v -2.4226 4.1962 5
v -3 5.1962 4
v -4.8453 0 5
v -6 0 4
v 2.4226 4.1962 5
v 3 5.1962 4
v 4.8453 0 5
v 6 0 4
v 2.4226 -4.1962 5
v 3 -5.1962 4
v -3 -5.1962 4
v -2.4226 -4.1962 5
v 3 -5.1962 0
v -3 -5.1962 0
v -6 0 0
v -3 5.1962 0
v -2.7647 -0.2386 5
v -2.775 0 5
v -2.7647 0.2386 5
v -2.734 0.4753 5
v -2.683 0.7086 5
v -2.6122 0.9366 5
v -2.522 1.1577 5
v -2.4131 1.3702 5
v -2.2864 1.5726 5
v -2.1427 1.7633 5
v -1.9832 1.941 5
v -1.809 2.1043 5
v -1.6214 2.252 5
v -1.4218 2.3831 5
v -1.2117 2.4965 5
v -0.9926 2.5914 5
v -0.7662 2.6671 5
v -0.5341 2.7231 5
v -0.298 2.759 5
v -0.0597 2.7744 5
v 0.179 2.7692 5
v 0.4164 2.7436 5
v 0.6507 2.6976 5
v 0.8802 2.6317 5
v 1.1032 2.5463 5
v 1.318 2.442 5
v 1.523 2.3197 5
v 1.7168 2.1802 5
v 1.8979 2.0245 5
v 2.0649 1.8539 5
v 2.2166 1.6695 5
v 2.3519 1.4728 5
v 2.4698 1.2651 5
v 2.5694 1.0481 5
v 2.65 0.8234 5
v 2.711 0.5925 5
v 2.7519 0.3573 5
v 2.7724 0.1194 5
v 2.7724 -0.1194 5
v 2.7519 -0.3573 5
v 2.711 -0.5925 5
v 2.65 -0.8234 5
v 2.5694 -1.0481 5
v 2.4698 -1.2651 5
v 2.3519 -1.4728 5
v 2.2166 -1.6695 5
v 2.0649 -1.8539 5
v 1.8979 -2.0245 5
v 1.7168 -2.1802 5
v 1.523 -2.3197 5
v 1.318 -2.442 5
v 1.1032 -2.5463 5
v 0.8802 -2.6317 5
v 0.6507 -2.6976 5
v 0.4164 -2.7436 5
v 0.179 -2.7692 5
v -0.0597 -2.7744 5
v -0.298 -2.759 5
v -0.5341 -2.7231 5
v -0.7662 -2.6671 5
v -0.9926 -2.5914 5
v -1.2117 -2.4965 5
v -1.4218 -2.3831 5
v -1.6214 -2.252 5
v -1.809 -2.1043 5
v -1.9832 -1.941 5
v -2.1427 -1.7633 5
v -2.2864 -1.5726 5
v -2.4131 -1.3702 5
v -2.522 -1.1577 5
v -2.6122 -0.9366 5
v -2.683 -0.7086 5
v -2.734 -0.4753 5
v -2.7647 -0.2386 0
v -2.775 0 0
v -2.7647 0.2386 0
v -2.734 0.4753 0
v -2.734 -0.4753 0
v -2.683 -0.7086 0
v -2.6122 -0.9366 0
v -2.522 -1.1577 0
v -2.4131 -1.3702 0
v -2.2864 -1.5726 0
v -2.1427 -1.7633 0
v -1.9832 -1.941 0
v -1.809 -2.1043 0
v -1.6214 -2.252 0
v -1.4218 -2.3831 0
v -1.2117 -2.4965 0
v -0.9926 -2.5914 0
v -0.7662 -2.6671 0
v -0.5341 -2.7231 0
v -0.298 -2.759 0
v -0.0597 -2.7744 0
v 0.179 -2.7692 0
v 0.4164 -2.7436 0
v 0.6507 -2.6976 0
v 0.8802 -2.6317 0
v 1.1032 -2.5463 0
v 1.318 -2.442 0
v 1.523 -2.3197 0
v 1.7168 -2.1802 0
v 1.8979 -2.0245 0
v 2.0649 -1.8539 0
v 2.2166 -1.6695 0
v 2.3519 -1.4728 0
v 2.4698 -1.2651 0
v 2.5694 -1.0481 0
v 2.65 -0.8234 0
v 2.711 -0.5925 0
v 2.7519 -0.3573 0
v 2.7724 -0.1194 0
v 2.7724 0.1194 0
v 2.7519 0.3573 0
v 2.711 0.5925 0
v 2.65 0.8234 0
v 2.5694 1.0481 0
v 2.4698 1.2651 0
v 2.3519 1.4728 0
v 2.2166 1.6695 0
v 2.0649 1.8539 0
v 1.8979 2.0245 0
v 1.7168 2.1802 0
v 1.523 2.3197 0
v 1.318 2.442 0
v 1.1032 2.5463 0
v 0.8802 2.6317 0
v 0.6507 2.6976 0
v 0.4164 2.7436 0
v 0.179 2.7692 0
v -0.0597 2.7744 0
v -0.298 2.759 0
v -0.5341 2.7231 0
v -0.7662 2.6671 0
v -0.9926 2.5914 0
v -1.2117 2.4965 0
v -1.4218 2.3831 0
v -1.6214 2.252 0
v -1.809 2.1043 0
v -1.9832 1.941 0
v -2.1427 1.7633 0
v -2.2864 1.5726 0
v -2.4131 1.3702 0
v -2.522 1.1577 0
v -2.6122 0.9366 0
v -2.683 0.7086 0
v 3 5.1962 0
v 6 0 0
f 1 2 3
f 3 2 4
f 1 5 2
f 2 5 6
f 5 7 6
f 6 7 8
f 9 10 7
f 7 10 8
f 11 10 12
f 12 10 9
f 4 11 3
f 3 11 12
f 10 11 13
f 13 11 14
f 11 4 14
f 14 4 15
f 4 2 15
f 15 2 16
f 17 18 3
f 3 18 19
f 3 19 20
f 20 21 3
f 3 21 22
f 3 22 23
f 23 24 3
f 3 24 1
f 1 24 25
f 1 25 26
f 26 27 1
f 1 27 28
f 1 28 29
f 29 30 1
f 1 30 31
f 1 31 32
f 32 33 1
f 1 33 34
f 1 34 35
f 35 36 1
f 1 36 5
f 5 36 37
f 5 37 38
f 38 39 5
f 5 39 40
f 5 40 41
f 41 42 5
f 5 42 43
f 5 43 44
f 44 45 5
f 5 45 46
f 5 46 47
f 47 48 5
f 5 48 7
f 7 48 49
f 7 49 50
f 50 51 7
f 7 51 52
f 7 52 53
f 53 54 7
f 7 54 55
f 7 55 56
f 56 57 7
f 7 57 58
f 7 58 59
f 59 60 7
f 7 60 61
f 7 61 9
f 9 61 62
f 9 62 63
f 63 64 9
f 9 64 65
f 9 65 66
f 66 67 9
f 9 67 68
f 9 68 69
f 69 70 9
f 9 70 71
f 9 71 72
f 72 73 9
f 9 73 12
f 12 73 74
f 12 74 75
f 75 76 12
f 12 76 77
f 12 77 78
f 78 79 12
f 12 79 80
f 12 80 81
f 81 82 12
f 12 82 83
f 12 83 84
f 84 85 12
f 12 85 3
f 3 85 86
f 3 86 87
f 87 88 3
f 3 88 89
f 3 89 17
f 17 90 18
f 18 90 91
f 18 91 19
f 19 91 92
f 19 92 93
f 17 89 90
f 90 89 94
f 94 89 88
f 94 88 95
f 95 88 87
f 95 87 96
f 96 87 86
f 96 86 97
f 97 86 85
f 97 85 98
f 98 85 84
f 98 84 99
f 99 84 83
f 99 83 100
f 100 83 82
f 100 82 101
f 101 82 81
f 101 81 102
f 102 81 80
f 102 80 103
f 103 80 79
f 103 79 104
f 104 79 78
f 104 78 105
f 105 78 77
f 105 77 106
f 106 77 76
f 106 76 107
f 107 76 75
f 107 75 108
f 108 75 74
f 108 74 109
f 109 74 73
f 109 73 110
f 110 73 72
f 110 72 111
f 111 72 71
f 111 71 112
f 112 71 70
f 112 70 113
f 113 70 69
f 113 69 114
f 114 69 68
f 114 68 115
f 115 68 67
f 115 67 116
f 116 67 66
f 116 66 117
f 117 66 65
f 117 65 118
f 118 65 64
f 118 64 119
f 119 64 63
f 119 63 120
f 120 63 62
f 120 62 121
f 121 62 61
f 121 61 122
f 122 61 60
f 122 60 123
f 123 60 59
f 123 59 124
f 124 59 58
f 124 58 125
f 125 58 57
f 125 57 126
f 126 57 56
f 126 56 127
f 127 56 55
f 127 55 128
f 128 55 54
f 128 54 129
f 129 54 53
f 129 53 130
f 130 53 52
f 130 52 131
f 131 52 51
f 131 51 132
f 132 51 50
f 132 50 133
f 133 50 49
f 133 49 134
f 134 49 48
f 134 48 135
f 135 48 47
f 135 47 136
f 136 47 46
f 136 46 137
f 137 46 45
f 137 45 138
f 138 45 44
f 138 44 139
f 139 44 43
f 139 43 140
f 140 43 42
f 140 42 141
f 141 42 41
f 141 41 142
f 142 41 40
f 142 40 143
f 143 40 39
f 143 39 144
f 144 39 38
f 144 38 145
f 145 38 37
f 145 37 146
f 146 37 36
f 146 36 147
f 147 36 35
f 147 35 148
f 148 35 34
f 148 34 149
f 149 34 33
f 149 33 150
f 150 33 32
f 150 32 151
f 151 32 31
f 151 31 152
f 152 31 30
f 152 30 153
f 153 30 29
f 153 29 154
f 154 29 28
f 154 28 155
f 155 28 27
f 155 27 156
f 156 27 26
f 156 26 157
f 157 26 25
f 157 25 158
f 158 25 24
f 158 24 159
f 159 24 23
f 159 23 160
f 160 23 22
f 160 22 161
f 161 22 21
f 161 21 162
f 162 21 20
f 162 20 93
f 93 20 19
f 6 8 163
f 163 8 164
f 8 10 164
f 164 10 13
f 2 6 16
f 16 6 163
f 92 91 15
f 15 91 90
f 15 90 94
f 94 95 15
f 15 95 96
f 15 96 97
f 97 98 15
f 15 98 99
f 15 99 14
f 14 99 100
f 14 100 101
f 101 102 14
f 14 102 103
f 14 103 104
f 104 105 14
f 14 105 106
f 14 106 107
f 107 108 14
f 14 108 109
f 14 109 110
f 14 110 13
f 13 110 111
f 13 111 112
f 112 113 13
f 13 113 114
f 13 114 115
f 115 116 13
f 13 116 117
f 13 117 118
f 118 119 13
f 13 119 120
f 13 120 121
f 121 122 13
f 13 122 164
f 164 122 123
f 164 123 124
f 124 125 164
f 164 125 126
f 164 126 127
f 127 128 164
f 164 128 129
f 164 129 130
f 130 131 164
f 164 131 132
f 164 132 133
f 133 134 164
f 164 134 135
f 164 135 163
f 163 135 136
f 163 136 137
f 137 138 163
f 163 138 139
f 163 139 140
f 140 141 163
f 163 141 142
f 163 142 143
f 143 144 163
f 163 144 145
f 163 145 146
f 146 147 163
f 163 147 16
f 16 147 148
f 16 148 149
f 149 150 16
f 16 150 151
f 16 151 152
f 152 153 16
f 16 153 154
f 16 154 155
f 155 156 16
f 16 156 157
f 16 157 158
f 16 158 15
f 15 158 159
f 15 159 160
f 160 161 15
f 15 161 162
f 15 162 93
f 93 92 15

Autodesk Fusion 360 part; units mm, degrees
sketch "Sketch1" plane through (0, 0, 0) normal (0, 0, 1) x (1, 0, 0) in component "Pneumatic Nut"
  line L0 (-3, 5.1962) -> (-6, 0)
  line L1 (-6, 0) -> (-3, -5.1962)
  line L2 (-3, -5.1962) -> (3, -5.1962)
  line L3 (3, -5.1962) -> (6, 0)
  line L4 (6, 0) -> (3, 5.1962)
  line L5 (3, 5.1962) -> (-3, 5.1962)
  circle A0 centre (0, 0) radius 2.775
  dimension "d1" = 12
  dimension "d2" = 5.55
extrude "Extrude1" add sketch "Sketch1" along normal blind 5 in component "Pneumatic Nut"
chamfer "Chamfer1" distance 1 angle 45 6 edges at (4.5, -2.5981, 5) (4.5, 2.5981, 5) (0, 5.1962, 5) (-4.5, 2.5981, 5) (-4.5, -2.5981, 5) (0, -5.1962, 5) in component "Pneumatic Nut"
component "Pneumatic Nut" placed x (1, 0, 0) y (0, 1, 0) z (0, 0, 1) at (0, 0, 0)
